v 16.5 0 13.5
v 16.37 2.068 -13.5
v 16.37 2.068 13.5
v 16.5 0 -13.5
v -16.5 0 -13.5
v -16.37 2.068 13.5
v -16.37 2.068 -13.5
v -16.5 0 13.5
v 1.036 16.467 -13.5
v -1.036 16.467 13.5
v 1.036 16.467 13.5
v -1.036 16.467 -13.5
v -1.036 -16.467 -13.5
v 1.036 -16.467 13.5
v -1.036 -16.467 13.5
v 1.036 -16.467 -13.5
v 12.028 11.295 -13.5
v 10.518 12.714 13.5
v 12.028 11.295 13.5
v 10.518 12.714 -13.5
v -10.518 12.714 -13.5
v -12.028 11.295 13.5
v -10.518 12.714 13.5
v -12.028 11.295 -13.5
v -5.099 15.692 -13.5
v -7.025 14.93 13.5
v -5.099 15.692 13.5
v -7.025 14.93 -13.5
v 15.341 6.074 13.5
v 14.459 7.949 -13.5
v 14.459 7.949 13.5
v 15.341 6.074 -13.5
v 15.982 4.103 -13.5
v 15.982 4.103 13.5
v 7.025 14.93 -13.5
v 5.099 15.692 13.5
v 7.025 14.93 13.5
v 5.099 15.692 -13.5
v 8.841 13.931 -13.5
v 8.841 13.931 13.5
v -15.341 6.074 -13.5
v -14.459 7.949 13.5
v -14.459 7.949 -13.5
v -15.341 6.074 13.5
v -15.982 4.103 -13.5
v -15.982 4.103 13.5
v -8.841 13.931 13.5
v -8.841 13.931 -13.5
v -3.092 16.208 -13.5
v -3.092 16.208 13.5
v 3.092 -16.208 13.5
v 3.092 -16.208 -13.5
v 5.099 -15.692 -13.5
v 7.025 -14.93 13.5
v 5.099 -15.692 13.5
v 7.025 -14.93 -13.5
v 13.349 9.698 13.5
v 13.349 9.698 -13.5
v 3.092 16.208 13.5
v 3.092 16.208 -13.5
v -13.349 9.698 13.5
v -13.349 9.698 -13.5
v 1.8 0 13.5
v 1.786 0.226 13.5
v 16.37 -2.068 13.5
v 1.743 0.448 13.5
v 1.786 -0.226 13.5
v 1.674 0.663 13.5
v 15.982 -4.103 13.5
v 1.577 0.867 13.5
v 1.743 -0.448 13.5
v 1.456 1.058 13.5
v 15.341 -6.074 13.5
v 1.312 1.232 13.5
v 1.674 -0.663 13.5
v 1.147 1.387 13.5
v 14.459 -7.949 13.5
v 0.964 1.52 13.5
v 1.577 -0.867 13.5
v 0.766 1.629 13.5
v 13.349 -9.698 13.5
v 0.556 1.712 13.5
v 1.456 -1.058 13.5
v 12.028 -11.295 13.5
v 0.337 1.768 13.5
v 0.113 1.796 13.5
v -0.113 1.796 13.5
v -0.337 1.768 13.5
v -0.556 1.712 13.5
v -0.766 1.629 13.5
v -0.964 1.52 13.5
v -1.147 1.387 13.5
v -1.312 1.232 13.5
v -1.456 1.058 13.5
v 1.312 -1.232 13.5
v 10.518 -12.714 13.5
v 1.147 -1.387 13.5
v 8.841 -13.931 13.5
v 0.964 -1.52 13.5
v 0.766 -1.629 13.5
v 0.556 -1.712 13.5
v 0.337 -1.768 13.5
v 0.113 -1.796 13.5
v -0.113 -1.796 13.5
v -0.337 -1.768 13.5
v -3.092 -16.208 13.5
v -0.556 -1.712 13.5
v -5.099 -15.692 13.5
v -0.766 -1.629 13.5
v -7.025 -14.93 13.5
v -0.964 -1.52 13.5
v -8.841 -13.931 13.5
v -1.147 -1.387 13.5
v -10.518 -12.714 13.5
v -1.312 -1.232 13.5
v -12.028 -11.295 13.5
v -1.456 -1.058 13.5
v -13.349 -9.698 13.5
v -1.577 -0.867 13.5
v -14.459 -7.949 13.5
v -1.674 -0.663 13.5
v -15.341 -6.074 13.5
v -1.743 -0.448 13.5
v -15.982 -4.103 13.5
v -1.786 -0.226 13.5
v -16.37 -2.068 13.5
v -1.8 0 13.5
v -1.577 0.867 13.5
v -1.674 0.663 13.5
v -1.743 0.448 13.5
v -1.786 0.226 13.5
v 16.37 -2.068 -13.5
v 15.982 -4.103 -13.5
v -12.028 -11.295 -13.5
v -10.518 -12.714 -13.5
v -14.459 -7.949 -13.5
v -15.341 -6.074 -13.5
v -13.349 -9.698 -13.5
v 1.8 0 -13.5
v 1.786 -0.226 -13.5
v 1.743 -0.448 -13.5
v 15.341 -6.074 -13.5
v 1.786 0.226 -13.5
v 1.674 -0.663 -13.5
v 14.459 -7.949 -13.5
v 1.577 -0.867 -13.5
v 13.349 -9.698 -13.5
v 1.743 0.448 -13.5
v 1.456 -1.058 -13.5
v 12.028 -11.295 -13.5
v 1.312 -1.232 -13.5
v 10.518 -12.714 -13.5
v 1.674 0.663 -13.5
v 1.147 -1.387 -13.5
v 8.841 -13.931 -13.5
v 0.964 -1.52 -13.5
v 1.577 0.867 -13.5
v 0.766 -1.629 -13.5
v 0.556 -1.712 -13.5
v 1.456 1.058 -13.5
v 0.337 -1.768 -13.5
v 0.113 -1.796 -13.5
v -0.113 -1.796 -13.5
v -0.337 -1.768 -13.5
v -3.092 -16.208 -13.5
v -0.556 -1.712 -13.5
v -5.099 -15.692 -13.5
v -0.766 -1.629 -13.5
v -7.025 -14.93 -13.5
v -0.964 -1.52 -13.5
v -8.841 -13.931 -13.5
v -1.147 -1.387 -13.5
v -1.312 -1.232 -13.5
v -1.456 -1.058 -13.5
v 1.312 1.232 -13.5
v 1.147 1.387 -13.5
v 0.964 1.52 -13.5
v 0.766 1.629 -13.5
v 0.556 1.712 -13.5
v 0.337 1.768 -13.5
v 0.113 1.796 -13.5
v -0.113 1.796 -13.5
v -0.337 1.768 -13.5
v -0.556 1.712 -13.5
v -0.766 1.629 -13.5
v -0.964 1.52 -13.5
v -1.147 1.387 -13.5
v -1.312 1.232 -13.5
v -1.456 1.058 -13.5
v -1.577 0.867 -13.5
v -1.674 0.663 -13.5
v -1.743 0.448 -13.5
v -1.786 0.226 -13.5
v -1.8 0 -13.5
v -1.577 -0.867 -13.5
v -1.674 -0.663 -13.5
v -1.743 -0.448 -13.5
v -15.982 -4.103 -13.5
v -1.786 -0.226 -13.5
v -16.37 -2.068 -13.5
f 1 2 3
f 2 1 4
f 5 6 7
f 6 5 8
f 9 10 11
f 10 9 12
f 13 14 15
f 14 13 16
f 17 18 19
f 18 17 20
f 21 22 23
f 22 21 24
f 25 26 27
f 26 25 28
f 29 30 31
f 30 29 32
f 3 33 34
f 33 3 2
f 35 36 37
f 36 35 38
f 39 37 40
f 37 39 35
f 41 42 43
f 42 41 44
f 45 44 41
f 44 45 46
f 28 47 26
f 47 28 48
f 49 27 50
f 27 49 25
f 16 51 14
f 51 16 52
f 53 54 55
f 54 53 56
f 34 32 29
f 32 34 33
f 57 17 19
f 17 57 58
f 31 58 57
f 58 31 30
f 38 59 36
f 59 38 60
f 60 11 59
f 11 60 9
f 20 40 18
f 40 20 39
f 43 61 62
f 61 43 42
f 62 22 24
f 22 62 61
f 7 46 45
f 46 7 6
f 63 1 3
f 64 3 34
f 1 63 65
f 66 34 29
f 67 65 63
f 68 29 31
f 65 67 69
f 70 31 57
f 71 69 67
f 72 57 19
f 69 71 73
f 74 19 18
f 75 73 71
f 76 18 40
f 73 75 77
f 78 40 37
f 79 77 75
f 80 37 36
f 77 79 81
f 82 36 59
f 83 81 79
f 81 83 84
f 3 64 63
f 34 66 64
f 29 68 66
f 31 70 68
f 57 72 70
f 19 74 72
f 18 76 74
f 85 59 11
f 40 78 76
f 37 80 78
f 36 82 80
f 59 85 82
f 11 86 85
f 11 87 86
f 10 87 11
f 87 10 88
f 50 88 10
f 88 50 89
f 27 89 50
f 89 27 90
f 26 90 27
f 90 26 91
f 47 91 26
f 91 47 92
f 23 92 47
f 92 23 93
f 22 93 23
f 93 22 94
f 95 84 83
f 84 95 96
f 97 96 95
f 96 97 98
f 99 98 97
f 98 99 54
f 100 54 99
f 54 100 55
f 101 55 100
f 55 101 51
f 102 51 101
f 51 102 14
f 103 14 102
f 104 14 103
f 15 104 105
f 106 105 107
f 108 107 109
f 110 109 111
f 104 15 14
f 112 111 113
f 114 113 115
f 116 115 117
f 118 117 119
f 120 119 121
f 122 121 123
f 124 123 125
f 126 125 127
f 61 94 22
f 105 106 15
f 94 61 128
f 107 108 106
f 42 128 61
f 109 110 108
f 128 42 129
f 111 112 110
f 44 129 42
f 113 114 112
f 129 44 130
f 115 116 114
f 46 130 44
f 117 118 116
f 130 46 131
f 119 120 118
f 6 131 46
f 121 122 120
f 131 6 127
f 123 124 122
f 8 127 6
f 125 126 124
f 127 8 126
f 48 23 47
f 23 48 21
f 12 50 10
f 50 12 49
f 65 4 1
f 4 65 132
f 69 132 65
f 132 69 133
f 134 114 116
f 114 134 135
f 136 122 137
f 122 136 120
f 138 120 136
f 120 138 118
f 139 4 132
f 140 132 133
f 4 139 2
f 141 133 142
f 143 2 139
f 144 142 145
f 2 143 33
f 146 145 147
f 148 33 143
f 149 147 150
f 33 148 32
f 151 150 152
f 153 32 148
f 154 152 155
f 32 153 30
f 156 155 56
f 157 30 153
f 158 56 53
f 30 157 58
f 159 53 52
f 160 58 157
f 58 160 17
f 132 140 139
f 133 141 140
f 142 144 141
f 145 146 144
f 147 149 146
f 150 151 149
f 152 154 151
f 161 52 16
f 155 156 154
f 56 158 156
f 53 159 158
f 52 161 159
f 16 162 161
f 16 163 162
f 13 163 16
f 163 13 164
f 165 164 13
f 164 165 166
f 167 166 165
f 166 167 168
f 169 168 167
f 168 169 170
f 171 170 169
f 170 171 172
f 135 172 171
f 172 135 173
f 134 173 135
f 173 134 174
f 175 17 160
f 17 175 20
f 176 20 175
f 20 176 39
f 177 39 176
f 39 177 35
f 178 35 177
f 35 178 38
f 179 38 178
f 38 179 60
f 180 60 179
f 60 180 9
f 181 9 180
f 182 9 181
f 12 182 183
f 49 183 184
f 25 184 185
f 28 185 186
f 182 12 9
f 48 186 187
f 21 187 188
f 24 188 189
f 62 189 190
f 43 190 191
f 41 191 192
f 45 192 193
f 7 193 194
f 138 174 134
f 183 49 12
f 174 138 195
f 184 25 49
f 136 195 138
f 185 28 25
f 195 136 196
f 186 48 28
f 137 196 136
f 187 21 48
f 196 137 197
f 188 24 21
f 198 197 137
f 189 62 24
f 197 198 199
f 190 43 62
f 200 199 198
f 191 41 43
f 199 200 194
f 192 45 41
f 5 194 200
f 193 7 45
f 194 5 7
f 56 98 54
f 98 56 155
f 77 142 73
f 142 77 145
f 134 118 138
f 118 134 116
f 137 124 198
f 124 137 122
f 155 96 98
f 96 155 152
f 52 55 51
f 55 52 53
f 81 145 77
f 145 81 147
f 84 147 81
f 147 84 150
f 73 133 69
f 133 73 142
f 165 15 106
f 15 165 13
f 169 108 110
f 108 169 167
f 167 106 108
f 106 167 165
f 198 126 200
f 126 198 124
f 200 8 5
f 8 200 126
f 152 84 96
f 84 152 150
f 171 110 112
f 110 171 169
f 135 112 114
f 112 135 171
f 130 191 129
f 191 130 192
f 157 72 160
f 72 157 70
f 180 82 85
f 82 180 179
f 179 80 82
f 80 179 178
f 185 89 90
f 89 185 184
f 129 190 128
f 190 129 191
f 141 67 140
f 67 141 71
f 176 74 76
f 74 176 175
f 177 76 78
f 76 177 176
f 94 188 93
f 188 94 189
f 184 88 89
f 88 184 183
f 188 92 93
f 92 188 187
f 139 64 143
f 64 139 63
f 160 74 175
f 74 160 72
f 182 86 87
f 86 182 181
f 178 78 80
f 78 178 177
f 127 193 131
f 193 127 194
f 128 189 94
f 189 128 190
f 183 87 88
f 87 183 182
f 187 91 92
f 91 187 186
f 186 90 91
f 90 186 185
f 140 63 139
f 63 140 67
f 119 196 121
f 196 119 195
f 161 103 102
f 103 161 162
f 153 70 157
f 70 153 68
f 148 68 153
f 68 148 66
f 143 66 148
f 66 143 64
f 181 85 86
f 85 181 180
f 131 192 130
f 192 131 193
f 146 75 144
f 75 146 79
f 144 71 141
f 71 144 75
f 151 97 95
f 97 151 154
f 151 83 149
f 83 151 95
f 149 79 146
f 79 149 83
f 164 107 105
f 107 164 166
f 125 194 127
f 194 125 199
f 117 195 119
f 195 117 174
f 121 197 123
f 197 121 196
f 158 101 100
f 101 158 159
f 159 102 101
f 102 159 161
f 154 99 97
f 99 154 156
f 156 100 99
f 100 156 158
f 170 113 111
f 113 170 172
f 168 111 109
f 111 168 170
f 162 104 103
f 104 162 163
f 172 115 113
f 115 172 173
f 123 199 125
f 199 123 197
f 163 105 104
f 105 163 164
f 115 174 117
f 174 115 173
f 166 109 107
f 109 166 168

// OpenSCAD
$fn = 50;


difference() {
	union() {
		translate(v = [0, 0, -13.5000000000]) {
			cylinder(h = 27, r = 16.5000000000);
		}
	}
	union() {
		translate(v = [0, 0, -100.0000000000]) {
			cylinder(h = 200, r = 1.8000000000);
		}
	}
}
